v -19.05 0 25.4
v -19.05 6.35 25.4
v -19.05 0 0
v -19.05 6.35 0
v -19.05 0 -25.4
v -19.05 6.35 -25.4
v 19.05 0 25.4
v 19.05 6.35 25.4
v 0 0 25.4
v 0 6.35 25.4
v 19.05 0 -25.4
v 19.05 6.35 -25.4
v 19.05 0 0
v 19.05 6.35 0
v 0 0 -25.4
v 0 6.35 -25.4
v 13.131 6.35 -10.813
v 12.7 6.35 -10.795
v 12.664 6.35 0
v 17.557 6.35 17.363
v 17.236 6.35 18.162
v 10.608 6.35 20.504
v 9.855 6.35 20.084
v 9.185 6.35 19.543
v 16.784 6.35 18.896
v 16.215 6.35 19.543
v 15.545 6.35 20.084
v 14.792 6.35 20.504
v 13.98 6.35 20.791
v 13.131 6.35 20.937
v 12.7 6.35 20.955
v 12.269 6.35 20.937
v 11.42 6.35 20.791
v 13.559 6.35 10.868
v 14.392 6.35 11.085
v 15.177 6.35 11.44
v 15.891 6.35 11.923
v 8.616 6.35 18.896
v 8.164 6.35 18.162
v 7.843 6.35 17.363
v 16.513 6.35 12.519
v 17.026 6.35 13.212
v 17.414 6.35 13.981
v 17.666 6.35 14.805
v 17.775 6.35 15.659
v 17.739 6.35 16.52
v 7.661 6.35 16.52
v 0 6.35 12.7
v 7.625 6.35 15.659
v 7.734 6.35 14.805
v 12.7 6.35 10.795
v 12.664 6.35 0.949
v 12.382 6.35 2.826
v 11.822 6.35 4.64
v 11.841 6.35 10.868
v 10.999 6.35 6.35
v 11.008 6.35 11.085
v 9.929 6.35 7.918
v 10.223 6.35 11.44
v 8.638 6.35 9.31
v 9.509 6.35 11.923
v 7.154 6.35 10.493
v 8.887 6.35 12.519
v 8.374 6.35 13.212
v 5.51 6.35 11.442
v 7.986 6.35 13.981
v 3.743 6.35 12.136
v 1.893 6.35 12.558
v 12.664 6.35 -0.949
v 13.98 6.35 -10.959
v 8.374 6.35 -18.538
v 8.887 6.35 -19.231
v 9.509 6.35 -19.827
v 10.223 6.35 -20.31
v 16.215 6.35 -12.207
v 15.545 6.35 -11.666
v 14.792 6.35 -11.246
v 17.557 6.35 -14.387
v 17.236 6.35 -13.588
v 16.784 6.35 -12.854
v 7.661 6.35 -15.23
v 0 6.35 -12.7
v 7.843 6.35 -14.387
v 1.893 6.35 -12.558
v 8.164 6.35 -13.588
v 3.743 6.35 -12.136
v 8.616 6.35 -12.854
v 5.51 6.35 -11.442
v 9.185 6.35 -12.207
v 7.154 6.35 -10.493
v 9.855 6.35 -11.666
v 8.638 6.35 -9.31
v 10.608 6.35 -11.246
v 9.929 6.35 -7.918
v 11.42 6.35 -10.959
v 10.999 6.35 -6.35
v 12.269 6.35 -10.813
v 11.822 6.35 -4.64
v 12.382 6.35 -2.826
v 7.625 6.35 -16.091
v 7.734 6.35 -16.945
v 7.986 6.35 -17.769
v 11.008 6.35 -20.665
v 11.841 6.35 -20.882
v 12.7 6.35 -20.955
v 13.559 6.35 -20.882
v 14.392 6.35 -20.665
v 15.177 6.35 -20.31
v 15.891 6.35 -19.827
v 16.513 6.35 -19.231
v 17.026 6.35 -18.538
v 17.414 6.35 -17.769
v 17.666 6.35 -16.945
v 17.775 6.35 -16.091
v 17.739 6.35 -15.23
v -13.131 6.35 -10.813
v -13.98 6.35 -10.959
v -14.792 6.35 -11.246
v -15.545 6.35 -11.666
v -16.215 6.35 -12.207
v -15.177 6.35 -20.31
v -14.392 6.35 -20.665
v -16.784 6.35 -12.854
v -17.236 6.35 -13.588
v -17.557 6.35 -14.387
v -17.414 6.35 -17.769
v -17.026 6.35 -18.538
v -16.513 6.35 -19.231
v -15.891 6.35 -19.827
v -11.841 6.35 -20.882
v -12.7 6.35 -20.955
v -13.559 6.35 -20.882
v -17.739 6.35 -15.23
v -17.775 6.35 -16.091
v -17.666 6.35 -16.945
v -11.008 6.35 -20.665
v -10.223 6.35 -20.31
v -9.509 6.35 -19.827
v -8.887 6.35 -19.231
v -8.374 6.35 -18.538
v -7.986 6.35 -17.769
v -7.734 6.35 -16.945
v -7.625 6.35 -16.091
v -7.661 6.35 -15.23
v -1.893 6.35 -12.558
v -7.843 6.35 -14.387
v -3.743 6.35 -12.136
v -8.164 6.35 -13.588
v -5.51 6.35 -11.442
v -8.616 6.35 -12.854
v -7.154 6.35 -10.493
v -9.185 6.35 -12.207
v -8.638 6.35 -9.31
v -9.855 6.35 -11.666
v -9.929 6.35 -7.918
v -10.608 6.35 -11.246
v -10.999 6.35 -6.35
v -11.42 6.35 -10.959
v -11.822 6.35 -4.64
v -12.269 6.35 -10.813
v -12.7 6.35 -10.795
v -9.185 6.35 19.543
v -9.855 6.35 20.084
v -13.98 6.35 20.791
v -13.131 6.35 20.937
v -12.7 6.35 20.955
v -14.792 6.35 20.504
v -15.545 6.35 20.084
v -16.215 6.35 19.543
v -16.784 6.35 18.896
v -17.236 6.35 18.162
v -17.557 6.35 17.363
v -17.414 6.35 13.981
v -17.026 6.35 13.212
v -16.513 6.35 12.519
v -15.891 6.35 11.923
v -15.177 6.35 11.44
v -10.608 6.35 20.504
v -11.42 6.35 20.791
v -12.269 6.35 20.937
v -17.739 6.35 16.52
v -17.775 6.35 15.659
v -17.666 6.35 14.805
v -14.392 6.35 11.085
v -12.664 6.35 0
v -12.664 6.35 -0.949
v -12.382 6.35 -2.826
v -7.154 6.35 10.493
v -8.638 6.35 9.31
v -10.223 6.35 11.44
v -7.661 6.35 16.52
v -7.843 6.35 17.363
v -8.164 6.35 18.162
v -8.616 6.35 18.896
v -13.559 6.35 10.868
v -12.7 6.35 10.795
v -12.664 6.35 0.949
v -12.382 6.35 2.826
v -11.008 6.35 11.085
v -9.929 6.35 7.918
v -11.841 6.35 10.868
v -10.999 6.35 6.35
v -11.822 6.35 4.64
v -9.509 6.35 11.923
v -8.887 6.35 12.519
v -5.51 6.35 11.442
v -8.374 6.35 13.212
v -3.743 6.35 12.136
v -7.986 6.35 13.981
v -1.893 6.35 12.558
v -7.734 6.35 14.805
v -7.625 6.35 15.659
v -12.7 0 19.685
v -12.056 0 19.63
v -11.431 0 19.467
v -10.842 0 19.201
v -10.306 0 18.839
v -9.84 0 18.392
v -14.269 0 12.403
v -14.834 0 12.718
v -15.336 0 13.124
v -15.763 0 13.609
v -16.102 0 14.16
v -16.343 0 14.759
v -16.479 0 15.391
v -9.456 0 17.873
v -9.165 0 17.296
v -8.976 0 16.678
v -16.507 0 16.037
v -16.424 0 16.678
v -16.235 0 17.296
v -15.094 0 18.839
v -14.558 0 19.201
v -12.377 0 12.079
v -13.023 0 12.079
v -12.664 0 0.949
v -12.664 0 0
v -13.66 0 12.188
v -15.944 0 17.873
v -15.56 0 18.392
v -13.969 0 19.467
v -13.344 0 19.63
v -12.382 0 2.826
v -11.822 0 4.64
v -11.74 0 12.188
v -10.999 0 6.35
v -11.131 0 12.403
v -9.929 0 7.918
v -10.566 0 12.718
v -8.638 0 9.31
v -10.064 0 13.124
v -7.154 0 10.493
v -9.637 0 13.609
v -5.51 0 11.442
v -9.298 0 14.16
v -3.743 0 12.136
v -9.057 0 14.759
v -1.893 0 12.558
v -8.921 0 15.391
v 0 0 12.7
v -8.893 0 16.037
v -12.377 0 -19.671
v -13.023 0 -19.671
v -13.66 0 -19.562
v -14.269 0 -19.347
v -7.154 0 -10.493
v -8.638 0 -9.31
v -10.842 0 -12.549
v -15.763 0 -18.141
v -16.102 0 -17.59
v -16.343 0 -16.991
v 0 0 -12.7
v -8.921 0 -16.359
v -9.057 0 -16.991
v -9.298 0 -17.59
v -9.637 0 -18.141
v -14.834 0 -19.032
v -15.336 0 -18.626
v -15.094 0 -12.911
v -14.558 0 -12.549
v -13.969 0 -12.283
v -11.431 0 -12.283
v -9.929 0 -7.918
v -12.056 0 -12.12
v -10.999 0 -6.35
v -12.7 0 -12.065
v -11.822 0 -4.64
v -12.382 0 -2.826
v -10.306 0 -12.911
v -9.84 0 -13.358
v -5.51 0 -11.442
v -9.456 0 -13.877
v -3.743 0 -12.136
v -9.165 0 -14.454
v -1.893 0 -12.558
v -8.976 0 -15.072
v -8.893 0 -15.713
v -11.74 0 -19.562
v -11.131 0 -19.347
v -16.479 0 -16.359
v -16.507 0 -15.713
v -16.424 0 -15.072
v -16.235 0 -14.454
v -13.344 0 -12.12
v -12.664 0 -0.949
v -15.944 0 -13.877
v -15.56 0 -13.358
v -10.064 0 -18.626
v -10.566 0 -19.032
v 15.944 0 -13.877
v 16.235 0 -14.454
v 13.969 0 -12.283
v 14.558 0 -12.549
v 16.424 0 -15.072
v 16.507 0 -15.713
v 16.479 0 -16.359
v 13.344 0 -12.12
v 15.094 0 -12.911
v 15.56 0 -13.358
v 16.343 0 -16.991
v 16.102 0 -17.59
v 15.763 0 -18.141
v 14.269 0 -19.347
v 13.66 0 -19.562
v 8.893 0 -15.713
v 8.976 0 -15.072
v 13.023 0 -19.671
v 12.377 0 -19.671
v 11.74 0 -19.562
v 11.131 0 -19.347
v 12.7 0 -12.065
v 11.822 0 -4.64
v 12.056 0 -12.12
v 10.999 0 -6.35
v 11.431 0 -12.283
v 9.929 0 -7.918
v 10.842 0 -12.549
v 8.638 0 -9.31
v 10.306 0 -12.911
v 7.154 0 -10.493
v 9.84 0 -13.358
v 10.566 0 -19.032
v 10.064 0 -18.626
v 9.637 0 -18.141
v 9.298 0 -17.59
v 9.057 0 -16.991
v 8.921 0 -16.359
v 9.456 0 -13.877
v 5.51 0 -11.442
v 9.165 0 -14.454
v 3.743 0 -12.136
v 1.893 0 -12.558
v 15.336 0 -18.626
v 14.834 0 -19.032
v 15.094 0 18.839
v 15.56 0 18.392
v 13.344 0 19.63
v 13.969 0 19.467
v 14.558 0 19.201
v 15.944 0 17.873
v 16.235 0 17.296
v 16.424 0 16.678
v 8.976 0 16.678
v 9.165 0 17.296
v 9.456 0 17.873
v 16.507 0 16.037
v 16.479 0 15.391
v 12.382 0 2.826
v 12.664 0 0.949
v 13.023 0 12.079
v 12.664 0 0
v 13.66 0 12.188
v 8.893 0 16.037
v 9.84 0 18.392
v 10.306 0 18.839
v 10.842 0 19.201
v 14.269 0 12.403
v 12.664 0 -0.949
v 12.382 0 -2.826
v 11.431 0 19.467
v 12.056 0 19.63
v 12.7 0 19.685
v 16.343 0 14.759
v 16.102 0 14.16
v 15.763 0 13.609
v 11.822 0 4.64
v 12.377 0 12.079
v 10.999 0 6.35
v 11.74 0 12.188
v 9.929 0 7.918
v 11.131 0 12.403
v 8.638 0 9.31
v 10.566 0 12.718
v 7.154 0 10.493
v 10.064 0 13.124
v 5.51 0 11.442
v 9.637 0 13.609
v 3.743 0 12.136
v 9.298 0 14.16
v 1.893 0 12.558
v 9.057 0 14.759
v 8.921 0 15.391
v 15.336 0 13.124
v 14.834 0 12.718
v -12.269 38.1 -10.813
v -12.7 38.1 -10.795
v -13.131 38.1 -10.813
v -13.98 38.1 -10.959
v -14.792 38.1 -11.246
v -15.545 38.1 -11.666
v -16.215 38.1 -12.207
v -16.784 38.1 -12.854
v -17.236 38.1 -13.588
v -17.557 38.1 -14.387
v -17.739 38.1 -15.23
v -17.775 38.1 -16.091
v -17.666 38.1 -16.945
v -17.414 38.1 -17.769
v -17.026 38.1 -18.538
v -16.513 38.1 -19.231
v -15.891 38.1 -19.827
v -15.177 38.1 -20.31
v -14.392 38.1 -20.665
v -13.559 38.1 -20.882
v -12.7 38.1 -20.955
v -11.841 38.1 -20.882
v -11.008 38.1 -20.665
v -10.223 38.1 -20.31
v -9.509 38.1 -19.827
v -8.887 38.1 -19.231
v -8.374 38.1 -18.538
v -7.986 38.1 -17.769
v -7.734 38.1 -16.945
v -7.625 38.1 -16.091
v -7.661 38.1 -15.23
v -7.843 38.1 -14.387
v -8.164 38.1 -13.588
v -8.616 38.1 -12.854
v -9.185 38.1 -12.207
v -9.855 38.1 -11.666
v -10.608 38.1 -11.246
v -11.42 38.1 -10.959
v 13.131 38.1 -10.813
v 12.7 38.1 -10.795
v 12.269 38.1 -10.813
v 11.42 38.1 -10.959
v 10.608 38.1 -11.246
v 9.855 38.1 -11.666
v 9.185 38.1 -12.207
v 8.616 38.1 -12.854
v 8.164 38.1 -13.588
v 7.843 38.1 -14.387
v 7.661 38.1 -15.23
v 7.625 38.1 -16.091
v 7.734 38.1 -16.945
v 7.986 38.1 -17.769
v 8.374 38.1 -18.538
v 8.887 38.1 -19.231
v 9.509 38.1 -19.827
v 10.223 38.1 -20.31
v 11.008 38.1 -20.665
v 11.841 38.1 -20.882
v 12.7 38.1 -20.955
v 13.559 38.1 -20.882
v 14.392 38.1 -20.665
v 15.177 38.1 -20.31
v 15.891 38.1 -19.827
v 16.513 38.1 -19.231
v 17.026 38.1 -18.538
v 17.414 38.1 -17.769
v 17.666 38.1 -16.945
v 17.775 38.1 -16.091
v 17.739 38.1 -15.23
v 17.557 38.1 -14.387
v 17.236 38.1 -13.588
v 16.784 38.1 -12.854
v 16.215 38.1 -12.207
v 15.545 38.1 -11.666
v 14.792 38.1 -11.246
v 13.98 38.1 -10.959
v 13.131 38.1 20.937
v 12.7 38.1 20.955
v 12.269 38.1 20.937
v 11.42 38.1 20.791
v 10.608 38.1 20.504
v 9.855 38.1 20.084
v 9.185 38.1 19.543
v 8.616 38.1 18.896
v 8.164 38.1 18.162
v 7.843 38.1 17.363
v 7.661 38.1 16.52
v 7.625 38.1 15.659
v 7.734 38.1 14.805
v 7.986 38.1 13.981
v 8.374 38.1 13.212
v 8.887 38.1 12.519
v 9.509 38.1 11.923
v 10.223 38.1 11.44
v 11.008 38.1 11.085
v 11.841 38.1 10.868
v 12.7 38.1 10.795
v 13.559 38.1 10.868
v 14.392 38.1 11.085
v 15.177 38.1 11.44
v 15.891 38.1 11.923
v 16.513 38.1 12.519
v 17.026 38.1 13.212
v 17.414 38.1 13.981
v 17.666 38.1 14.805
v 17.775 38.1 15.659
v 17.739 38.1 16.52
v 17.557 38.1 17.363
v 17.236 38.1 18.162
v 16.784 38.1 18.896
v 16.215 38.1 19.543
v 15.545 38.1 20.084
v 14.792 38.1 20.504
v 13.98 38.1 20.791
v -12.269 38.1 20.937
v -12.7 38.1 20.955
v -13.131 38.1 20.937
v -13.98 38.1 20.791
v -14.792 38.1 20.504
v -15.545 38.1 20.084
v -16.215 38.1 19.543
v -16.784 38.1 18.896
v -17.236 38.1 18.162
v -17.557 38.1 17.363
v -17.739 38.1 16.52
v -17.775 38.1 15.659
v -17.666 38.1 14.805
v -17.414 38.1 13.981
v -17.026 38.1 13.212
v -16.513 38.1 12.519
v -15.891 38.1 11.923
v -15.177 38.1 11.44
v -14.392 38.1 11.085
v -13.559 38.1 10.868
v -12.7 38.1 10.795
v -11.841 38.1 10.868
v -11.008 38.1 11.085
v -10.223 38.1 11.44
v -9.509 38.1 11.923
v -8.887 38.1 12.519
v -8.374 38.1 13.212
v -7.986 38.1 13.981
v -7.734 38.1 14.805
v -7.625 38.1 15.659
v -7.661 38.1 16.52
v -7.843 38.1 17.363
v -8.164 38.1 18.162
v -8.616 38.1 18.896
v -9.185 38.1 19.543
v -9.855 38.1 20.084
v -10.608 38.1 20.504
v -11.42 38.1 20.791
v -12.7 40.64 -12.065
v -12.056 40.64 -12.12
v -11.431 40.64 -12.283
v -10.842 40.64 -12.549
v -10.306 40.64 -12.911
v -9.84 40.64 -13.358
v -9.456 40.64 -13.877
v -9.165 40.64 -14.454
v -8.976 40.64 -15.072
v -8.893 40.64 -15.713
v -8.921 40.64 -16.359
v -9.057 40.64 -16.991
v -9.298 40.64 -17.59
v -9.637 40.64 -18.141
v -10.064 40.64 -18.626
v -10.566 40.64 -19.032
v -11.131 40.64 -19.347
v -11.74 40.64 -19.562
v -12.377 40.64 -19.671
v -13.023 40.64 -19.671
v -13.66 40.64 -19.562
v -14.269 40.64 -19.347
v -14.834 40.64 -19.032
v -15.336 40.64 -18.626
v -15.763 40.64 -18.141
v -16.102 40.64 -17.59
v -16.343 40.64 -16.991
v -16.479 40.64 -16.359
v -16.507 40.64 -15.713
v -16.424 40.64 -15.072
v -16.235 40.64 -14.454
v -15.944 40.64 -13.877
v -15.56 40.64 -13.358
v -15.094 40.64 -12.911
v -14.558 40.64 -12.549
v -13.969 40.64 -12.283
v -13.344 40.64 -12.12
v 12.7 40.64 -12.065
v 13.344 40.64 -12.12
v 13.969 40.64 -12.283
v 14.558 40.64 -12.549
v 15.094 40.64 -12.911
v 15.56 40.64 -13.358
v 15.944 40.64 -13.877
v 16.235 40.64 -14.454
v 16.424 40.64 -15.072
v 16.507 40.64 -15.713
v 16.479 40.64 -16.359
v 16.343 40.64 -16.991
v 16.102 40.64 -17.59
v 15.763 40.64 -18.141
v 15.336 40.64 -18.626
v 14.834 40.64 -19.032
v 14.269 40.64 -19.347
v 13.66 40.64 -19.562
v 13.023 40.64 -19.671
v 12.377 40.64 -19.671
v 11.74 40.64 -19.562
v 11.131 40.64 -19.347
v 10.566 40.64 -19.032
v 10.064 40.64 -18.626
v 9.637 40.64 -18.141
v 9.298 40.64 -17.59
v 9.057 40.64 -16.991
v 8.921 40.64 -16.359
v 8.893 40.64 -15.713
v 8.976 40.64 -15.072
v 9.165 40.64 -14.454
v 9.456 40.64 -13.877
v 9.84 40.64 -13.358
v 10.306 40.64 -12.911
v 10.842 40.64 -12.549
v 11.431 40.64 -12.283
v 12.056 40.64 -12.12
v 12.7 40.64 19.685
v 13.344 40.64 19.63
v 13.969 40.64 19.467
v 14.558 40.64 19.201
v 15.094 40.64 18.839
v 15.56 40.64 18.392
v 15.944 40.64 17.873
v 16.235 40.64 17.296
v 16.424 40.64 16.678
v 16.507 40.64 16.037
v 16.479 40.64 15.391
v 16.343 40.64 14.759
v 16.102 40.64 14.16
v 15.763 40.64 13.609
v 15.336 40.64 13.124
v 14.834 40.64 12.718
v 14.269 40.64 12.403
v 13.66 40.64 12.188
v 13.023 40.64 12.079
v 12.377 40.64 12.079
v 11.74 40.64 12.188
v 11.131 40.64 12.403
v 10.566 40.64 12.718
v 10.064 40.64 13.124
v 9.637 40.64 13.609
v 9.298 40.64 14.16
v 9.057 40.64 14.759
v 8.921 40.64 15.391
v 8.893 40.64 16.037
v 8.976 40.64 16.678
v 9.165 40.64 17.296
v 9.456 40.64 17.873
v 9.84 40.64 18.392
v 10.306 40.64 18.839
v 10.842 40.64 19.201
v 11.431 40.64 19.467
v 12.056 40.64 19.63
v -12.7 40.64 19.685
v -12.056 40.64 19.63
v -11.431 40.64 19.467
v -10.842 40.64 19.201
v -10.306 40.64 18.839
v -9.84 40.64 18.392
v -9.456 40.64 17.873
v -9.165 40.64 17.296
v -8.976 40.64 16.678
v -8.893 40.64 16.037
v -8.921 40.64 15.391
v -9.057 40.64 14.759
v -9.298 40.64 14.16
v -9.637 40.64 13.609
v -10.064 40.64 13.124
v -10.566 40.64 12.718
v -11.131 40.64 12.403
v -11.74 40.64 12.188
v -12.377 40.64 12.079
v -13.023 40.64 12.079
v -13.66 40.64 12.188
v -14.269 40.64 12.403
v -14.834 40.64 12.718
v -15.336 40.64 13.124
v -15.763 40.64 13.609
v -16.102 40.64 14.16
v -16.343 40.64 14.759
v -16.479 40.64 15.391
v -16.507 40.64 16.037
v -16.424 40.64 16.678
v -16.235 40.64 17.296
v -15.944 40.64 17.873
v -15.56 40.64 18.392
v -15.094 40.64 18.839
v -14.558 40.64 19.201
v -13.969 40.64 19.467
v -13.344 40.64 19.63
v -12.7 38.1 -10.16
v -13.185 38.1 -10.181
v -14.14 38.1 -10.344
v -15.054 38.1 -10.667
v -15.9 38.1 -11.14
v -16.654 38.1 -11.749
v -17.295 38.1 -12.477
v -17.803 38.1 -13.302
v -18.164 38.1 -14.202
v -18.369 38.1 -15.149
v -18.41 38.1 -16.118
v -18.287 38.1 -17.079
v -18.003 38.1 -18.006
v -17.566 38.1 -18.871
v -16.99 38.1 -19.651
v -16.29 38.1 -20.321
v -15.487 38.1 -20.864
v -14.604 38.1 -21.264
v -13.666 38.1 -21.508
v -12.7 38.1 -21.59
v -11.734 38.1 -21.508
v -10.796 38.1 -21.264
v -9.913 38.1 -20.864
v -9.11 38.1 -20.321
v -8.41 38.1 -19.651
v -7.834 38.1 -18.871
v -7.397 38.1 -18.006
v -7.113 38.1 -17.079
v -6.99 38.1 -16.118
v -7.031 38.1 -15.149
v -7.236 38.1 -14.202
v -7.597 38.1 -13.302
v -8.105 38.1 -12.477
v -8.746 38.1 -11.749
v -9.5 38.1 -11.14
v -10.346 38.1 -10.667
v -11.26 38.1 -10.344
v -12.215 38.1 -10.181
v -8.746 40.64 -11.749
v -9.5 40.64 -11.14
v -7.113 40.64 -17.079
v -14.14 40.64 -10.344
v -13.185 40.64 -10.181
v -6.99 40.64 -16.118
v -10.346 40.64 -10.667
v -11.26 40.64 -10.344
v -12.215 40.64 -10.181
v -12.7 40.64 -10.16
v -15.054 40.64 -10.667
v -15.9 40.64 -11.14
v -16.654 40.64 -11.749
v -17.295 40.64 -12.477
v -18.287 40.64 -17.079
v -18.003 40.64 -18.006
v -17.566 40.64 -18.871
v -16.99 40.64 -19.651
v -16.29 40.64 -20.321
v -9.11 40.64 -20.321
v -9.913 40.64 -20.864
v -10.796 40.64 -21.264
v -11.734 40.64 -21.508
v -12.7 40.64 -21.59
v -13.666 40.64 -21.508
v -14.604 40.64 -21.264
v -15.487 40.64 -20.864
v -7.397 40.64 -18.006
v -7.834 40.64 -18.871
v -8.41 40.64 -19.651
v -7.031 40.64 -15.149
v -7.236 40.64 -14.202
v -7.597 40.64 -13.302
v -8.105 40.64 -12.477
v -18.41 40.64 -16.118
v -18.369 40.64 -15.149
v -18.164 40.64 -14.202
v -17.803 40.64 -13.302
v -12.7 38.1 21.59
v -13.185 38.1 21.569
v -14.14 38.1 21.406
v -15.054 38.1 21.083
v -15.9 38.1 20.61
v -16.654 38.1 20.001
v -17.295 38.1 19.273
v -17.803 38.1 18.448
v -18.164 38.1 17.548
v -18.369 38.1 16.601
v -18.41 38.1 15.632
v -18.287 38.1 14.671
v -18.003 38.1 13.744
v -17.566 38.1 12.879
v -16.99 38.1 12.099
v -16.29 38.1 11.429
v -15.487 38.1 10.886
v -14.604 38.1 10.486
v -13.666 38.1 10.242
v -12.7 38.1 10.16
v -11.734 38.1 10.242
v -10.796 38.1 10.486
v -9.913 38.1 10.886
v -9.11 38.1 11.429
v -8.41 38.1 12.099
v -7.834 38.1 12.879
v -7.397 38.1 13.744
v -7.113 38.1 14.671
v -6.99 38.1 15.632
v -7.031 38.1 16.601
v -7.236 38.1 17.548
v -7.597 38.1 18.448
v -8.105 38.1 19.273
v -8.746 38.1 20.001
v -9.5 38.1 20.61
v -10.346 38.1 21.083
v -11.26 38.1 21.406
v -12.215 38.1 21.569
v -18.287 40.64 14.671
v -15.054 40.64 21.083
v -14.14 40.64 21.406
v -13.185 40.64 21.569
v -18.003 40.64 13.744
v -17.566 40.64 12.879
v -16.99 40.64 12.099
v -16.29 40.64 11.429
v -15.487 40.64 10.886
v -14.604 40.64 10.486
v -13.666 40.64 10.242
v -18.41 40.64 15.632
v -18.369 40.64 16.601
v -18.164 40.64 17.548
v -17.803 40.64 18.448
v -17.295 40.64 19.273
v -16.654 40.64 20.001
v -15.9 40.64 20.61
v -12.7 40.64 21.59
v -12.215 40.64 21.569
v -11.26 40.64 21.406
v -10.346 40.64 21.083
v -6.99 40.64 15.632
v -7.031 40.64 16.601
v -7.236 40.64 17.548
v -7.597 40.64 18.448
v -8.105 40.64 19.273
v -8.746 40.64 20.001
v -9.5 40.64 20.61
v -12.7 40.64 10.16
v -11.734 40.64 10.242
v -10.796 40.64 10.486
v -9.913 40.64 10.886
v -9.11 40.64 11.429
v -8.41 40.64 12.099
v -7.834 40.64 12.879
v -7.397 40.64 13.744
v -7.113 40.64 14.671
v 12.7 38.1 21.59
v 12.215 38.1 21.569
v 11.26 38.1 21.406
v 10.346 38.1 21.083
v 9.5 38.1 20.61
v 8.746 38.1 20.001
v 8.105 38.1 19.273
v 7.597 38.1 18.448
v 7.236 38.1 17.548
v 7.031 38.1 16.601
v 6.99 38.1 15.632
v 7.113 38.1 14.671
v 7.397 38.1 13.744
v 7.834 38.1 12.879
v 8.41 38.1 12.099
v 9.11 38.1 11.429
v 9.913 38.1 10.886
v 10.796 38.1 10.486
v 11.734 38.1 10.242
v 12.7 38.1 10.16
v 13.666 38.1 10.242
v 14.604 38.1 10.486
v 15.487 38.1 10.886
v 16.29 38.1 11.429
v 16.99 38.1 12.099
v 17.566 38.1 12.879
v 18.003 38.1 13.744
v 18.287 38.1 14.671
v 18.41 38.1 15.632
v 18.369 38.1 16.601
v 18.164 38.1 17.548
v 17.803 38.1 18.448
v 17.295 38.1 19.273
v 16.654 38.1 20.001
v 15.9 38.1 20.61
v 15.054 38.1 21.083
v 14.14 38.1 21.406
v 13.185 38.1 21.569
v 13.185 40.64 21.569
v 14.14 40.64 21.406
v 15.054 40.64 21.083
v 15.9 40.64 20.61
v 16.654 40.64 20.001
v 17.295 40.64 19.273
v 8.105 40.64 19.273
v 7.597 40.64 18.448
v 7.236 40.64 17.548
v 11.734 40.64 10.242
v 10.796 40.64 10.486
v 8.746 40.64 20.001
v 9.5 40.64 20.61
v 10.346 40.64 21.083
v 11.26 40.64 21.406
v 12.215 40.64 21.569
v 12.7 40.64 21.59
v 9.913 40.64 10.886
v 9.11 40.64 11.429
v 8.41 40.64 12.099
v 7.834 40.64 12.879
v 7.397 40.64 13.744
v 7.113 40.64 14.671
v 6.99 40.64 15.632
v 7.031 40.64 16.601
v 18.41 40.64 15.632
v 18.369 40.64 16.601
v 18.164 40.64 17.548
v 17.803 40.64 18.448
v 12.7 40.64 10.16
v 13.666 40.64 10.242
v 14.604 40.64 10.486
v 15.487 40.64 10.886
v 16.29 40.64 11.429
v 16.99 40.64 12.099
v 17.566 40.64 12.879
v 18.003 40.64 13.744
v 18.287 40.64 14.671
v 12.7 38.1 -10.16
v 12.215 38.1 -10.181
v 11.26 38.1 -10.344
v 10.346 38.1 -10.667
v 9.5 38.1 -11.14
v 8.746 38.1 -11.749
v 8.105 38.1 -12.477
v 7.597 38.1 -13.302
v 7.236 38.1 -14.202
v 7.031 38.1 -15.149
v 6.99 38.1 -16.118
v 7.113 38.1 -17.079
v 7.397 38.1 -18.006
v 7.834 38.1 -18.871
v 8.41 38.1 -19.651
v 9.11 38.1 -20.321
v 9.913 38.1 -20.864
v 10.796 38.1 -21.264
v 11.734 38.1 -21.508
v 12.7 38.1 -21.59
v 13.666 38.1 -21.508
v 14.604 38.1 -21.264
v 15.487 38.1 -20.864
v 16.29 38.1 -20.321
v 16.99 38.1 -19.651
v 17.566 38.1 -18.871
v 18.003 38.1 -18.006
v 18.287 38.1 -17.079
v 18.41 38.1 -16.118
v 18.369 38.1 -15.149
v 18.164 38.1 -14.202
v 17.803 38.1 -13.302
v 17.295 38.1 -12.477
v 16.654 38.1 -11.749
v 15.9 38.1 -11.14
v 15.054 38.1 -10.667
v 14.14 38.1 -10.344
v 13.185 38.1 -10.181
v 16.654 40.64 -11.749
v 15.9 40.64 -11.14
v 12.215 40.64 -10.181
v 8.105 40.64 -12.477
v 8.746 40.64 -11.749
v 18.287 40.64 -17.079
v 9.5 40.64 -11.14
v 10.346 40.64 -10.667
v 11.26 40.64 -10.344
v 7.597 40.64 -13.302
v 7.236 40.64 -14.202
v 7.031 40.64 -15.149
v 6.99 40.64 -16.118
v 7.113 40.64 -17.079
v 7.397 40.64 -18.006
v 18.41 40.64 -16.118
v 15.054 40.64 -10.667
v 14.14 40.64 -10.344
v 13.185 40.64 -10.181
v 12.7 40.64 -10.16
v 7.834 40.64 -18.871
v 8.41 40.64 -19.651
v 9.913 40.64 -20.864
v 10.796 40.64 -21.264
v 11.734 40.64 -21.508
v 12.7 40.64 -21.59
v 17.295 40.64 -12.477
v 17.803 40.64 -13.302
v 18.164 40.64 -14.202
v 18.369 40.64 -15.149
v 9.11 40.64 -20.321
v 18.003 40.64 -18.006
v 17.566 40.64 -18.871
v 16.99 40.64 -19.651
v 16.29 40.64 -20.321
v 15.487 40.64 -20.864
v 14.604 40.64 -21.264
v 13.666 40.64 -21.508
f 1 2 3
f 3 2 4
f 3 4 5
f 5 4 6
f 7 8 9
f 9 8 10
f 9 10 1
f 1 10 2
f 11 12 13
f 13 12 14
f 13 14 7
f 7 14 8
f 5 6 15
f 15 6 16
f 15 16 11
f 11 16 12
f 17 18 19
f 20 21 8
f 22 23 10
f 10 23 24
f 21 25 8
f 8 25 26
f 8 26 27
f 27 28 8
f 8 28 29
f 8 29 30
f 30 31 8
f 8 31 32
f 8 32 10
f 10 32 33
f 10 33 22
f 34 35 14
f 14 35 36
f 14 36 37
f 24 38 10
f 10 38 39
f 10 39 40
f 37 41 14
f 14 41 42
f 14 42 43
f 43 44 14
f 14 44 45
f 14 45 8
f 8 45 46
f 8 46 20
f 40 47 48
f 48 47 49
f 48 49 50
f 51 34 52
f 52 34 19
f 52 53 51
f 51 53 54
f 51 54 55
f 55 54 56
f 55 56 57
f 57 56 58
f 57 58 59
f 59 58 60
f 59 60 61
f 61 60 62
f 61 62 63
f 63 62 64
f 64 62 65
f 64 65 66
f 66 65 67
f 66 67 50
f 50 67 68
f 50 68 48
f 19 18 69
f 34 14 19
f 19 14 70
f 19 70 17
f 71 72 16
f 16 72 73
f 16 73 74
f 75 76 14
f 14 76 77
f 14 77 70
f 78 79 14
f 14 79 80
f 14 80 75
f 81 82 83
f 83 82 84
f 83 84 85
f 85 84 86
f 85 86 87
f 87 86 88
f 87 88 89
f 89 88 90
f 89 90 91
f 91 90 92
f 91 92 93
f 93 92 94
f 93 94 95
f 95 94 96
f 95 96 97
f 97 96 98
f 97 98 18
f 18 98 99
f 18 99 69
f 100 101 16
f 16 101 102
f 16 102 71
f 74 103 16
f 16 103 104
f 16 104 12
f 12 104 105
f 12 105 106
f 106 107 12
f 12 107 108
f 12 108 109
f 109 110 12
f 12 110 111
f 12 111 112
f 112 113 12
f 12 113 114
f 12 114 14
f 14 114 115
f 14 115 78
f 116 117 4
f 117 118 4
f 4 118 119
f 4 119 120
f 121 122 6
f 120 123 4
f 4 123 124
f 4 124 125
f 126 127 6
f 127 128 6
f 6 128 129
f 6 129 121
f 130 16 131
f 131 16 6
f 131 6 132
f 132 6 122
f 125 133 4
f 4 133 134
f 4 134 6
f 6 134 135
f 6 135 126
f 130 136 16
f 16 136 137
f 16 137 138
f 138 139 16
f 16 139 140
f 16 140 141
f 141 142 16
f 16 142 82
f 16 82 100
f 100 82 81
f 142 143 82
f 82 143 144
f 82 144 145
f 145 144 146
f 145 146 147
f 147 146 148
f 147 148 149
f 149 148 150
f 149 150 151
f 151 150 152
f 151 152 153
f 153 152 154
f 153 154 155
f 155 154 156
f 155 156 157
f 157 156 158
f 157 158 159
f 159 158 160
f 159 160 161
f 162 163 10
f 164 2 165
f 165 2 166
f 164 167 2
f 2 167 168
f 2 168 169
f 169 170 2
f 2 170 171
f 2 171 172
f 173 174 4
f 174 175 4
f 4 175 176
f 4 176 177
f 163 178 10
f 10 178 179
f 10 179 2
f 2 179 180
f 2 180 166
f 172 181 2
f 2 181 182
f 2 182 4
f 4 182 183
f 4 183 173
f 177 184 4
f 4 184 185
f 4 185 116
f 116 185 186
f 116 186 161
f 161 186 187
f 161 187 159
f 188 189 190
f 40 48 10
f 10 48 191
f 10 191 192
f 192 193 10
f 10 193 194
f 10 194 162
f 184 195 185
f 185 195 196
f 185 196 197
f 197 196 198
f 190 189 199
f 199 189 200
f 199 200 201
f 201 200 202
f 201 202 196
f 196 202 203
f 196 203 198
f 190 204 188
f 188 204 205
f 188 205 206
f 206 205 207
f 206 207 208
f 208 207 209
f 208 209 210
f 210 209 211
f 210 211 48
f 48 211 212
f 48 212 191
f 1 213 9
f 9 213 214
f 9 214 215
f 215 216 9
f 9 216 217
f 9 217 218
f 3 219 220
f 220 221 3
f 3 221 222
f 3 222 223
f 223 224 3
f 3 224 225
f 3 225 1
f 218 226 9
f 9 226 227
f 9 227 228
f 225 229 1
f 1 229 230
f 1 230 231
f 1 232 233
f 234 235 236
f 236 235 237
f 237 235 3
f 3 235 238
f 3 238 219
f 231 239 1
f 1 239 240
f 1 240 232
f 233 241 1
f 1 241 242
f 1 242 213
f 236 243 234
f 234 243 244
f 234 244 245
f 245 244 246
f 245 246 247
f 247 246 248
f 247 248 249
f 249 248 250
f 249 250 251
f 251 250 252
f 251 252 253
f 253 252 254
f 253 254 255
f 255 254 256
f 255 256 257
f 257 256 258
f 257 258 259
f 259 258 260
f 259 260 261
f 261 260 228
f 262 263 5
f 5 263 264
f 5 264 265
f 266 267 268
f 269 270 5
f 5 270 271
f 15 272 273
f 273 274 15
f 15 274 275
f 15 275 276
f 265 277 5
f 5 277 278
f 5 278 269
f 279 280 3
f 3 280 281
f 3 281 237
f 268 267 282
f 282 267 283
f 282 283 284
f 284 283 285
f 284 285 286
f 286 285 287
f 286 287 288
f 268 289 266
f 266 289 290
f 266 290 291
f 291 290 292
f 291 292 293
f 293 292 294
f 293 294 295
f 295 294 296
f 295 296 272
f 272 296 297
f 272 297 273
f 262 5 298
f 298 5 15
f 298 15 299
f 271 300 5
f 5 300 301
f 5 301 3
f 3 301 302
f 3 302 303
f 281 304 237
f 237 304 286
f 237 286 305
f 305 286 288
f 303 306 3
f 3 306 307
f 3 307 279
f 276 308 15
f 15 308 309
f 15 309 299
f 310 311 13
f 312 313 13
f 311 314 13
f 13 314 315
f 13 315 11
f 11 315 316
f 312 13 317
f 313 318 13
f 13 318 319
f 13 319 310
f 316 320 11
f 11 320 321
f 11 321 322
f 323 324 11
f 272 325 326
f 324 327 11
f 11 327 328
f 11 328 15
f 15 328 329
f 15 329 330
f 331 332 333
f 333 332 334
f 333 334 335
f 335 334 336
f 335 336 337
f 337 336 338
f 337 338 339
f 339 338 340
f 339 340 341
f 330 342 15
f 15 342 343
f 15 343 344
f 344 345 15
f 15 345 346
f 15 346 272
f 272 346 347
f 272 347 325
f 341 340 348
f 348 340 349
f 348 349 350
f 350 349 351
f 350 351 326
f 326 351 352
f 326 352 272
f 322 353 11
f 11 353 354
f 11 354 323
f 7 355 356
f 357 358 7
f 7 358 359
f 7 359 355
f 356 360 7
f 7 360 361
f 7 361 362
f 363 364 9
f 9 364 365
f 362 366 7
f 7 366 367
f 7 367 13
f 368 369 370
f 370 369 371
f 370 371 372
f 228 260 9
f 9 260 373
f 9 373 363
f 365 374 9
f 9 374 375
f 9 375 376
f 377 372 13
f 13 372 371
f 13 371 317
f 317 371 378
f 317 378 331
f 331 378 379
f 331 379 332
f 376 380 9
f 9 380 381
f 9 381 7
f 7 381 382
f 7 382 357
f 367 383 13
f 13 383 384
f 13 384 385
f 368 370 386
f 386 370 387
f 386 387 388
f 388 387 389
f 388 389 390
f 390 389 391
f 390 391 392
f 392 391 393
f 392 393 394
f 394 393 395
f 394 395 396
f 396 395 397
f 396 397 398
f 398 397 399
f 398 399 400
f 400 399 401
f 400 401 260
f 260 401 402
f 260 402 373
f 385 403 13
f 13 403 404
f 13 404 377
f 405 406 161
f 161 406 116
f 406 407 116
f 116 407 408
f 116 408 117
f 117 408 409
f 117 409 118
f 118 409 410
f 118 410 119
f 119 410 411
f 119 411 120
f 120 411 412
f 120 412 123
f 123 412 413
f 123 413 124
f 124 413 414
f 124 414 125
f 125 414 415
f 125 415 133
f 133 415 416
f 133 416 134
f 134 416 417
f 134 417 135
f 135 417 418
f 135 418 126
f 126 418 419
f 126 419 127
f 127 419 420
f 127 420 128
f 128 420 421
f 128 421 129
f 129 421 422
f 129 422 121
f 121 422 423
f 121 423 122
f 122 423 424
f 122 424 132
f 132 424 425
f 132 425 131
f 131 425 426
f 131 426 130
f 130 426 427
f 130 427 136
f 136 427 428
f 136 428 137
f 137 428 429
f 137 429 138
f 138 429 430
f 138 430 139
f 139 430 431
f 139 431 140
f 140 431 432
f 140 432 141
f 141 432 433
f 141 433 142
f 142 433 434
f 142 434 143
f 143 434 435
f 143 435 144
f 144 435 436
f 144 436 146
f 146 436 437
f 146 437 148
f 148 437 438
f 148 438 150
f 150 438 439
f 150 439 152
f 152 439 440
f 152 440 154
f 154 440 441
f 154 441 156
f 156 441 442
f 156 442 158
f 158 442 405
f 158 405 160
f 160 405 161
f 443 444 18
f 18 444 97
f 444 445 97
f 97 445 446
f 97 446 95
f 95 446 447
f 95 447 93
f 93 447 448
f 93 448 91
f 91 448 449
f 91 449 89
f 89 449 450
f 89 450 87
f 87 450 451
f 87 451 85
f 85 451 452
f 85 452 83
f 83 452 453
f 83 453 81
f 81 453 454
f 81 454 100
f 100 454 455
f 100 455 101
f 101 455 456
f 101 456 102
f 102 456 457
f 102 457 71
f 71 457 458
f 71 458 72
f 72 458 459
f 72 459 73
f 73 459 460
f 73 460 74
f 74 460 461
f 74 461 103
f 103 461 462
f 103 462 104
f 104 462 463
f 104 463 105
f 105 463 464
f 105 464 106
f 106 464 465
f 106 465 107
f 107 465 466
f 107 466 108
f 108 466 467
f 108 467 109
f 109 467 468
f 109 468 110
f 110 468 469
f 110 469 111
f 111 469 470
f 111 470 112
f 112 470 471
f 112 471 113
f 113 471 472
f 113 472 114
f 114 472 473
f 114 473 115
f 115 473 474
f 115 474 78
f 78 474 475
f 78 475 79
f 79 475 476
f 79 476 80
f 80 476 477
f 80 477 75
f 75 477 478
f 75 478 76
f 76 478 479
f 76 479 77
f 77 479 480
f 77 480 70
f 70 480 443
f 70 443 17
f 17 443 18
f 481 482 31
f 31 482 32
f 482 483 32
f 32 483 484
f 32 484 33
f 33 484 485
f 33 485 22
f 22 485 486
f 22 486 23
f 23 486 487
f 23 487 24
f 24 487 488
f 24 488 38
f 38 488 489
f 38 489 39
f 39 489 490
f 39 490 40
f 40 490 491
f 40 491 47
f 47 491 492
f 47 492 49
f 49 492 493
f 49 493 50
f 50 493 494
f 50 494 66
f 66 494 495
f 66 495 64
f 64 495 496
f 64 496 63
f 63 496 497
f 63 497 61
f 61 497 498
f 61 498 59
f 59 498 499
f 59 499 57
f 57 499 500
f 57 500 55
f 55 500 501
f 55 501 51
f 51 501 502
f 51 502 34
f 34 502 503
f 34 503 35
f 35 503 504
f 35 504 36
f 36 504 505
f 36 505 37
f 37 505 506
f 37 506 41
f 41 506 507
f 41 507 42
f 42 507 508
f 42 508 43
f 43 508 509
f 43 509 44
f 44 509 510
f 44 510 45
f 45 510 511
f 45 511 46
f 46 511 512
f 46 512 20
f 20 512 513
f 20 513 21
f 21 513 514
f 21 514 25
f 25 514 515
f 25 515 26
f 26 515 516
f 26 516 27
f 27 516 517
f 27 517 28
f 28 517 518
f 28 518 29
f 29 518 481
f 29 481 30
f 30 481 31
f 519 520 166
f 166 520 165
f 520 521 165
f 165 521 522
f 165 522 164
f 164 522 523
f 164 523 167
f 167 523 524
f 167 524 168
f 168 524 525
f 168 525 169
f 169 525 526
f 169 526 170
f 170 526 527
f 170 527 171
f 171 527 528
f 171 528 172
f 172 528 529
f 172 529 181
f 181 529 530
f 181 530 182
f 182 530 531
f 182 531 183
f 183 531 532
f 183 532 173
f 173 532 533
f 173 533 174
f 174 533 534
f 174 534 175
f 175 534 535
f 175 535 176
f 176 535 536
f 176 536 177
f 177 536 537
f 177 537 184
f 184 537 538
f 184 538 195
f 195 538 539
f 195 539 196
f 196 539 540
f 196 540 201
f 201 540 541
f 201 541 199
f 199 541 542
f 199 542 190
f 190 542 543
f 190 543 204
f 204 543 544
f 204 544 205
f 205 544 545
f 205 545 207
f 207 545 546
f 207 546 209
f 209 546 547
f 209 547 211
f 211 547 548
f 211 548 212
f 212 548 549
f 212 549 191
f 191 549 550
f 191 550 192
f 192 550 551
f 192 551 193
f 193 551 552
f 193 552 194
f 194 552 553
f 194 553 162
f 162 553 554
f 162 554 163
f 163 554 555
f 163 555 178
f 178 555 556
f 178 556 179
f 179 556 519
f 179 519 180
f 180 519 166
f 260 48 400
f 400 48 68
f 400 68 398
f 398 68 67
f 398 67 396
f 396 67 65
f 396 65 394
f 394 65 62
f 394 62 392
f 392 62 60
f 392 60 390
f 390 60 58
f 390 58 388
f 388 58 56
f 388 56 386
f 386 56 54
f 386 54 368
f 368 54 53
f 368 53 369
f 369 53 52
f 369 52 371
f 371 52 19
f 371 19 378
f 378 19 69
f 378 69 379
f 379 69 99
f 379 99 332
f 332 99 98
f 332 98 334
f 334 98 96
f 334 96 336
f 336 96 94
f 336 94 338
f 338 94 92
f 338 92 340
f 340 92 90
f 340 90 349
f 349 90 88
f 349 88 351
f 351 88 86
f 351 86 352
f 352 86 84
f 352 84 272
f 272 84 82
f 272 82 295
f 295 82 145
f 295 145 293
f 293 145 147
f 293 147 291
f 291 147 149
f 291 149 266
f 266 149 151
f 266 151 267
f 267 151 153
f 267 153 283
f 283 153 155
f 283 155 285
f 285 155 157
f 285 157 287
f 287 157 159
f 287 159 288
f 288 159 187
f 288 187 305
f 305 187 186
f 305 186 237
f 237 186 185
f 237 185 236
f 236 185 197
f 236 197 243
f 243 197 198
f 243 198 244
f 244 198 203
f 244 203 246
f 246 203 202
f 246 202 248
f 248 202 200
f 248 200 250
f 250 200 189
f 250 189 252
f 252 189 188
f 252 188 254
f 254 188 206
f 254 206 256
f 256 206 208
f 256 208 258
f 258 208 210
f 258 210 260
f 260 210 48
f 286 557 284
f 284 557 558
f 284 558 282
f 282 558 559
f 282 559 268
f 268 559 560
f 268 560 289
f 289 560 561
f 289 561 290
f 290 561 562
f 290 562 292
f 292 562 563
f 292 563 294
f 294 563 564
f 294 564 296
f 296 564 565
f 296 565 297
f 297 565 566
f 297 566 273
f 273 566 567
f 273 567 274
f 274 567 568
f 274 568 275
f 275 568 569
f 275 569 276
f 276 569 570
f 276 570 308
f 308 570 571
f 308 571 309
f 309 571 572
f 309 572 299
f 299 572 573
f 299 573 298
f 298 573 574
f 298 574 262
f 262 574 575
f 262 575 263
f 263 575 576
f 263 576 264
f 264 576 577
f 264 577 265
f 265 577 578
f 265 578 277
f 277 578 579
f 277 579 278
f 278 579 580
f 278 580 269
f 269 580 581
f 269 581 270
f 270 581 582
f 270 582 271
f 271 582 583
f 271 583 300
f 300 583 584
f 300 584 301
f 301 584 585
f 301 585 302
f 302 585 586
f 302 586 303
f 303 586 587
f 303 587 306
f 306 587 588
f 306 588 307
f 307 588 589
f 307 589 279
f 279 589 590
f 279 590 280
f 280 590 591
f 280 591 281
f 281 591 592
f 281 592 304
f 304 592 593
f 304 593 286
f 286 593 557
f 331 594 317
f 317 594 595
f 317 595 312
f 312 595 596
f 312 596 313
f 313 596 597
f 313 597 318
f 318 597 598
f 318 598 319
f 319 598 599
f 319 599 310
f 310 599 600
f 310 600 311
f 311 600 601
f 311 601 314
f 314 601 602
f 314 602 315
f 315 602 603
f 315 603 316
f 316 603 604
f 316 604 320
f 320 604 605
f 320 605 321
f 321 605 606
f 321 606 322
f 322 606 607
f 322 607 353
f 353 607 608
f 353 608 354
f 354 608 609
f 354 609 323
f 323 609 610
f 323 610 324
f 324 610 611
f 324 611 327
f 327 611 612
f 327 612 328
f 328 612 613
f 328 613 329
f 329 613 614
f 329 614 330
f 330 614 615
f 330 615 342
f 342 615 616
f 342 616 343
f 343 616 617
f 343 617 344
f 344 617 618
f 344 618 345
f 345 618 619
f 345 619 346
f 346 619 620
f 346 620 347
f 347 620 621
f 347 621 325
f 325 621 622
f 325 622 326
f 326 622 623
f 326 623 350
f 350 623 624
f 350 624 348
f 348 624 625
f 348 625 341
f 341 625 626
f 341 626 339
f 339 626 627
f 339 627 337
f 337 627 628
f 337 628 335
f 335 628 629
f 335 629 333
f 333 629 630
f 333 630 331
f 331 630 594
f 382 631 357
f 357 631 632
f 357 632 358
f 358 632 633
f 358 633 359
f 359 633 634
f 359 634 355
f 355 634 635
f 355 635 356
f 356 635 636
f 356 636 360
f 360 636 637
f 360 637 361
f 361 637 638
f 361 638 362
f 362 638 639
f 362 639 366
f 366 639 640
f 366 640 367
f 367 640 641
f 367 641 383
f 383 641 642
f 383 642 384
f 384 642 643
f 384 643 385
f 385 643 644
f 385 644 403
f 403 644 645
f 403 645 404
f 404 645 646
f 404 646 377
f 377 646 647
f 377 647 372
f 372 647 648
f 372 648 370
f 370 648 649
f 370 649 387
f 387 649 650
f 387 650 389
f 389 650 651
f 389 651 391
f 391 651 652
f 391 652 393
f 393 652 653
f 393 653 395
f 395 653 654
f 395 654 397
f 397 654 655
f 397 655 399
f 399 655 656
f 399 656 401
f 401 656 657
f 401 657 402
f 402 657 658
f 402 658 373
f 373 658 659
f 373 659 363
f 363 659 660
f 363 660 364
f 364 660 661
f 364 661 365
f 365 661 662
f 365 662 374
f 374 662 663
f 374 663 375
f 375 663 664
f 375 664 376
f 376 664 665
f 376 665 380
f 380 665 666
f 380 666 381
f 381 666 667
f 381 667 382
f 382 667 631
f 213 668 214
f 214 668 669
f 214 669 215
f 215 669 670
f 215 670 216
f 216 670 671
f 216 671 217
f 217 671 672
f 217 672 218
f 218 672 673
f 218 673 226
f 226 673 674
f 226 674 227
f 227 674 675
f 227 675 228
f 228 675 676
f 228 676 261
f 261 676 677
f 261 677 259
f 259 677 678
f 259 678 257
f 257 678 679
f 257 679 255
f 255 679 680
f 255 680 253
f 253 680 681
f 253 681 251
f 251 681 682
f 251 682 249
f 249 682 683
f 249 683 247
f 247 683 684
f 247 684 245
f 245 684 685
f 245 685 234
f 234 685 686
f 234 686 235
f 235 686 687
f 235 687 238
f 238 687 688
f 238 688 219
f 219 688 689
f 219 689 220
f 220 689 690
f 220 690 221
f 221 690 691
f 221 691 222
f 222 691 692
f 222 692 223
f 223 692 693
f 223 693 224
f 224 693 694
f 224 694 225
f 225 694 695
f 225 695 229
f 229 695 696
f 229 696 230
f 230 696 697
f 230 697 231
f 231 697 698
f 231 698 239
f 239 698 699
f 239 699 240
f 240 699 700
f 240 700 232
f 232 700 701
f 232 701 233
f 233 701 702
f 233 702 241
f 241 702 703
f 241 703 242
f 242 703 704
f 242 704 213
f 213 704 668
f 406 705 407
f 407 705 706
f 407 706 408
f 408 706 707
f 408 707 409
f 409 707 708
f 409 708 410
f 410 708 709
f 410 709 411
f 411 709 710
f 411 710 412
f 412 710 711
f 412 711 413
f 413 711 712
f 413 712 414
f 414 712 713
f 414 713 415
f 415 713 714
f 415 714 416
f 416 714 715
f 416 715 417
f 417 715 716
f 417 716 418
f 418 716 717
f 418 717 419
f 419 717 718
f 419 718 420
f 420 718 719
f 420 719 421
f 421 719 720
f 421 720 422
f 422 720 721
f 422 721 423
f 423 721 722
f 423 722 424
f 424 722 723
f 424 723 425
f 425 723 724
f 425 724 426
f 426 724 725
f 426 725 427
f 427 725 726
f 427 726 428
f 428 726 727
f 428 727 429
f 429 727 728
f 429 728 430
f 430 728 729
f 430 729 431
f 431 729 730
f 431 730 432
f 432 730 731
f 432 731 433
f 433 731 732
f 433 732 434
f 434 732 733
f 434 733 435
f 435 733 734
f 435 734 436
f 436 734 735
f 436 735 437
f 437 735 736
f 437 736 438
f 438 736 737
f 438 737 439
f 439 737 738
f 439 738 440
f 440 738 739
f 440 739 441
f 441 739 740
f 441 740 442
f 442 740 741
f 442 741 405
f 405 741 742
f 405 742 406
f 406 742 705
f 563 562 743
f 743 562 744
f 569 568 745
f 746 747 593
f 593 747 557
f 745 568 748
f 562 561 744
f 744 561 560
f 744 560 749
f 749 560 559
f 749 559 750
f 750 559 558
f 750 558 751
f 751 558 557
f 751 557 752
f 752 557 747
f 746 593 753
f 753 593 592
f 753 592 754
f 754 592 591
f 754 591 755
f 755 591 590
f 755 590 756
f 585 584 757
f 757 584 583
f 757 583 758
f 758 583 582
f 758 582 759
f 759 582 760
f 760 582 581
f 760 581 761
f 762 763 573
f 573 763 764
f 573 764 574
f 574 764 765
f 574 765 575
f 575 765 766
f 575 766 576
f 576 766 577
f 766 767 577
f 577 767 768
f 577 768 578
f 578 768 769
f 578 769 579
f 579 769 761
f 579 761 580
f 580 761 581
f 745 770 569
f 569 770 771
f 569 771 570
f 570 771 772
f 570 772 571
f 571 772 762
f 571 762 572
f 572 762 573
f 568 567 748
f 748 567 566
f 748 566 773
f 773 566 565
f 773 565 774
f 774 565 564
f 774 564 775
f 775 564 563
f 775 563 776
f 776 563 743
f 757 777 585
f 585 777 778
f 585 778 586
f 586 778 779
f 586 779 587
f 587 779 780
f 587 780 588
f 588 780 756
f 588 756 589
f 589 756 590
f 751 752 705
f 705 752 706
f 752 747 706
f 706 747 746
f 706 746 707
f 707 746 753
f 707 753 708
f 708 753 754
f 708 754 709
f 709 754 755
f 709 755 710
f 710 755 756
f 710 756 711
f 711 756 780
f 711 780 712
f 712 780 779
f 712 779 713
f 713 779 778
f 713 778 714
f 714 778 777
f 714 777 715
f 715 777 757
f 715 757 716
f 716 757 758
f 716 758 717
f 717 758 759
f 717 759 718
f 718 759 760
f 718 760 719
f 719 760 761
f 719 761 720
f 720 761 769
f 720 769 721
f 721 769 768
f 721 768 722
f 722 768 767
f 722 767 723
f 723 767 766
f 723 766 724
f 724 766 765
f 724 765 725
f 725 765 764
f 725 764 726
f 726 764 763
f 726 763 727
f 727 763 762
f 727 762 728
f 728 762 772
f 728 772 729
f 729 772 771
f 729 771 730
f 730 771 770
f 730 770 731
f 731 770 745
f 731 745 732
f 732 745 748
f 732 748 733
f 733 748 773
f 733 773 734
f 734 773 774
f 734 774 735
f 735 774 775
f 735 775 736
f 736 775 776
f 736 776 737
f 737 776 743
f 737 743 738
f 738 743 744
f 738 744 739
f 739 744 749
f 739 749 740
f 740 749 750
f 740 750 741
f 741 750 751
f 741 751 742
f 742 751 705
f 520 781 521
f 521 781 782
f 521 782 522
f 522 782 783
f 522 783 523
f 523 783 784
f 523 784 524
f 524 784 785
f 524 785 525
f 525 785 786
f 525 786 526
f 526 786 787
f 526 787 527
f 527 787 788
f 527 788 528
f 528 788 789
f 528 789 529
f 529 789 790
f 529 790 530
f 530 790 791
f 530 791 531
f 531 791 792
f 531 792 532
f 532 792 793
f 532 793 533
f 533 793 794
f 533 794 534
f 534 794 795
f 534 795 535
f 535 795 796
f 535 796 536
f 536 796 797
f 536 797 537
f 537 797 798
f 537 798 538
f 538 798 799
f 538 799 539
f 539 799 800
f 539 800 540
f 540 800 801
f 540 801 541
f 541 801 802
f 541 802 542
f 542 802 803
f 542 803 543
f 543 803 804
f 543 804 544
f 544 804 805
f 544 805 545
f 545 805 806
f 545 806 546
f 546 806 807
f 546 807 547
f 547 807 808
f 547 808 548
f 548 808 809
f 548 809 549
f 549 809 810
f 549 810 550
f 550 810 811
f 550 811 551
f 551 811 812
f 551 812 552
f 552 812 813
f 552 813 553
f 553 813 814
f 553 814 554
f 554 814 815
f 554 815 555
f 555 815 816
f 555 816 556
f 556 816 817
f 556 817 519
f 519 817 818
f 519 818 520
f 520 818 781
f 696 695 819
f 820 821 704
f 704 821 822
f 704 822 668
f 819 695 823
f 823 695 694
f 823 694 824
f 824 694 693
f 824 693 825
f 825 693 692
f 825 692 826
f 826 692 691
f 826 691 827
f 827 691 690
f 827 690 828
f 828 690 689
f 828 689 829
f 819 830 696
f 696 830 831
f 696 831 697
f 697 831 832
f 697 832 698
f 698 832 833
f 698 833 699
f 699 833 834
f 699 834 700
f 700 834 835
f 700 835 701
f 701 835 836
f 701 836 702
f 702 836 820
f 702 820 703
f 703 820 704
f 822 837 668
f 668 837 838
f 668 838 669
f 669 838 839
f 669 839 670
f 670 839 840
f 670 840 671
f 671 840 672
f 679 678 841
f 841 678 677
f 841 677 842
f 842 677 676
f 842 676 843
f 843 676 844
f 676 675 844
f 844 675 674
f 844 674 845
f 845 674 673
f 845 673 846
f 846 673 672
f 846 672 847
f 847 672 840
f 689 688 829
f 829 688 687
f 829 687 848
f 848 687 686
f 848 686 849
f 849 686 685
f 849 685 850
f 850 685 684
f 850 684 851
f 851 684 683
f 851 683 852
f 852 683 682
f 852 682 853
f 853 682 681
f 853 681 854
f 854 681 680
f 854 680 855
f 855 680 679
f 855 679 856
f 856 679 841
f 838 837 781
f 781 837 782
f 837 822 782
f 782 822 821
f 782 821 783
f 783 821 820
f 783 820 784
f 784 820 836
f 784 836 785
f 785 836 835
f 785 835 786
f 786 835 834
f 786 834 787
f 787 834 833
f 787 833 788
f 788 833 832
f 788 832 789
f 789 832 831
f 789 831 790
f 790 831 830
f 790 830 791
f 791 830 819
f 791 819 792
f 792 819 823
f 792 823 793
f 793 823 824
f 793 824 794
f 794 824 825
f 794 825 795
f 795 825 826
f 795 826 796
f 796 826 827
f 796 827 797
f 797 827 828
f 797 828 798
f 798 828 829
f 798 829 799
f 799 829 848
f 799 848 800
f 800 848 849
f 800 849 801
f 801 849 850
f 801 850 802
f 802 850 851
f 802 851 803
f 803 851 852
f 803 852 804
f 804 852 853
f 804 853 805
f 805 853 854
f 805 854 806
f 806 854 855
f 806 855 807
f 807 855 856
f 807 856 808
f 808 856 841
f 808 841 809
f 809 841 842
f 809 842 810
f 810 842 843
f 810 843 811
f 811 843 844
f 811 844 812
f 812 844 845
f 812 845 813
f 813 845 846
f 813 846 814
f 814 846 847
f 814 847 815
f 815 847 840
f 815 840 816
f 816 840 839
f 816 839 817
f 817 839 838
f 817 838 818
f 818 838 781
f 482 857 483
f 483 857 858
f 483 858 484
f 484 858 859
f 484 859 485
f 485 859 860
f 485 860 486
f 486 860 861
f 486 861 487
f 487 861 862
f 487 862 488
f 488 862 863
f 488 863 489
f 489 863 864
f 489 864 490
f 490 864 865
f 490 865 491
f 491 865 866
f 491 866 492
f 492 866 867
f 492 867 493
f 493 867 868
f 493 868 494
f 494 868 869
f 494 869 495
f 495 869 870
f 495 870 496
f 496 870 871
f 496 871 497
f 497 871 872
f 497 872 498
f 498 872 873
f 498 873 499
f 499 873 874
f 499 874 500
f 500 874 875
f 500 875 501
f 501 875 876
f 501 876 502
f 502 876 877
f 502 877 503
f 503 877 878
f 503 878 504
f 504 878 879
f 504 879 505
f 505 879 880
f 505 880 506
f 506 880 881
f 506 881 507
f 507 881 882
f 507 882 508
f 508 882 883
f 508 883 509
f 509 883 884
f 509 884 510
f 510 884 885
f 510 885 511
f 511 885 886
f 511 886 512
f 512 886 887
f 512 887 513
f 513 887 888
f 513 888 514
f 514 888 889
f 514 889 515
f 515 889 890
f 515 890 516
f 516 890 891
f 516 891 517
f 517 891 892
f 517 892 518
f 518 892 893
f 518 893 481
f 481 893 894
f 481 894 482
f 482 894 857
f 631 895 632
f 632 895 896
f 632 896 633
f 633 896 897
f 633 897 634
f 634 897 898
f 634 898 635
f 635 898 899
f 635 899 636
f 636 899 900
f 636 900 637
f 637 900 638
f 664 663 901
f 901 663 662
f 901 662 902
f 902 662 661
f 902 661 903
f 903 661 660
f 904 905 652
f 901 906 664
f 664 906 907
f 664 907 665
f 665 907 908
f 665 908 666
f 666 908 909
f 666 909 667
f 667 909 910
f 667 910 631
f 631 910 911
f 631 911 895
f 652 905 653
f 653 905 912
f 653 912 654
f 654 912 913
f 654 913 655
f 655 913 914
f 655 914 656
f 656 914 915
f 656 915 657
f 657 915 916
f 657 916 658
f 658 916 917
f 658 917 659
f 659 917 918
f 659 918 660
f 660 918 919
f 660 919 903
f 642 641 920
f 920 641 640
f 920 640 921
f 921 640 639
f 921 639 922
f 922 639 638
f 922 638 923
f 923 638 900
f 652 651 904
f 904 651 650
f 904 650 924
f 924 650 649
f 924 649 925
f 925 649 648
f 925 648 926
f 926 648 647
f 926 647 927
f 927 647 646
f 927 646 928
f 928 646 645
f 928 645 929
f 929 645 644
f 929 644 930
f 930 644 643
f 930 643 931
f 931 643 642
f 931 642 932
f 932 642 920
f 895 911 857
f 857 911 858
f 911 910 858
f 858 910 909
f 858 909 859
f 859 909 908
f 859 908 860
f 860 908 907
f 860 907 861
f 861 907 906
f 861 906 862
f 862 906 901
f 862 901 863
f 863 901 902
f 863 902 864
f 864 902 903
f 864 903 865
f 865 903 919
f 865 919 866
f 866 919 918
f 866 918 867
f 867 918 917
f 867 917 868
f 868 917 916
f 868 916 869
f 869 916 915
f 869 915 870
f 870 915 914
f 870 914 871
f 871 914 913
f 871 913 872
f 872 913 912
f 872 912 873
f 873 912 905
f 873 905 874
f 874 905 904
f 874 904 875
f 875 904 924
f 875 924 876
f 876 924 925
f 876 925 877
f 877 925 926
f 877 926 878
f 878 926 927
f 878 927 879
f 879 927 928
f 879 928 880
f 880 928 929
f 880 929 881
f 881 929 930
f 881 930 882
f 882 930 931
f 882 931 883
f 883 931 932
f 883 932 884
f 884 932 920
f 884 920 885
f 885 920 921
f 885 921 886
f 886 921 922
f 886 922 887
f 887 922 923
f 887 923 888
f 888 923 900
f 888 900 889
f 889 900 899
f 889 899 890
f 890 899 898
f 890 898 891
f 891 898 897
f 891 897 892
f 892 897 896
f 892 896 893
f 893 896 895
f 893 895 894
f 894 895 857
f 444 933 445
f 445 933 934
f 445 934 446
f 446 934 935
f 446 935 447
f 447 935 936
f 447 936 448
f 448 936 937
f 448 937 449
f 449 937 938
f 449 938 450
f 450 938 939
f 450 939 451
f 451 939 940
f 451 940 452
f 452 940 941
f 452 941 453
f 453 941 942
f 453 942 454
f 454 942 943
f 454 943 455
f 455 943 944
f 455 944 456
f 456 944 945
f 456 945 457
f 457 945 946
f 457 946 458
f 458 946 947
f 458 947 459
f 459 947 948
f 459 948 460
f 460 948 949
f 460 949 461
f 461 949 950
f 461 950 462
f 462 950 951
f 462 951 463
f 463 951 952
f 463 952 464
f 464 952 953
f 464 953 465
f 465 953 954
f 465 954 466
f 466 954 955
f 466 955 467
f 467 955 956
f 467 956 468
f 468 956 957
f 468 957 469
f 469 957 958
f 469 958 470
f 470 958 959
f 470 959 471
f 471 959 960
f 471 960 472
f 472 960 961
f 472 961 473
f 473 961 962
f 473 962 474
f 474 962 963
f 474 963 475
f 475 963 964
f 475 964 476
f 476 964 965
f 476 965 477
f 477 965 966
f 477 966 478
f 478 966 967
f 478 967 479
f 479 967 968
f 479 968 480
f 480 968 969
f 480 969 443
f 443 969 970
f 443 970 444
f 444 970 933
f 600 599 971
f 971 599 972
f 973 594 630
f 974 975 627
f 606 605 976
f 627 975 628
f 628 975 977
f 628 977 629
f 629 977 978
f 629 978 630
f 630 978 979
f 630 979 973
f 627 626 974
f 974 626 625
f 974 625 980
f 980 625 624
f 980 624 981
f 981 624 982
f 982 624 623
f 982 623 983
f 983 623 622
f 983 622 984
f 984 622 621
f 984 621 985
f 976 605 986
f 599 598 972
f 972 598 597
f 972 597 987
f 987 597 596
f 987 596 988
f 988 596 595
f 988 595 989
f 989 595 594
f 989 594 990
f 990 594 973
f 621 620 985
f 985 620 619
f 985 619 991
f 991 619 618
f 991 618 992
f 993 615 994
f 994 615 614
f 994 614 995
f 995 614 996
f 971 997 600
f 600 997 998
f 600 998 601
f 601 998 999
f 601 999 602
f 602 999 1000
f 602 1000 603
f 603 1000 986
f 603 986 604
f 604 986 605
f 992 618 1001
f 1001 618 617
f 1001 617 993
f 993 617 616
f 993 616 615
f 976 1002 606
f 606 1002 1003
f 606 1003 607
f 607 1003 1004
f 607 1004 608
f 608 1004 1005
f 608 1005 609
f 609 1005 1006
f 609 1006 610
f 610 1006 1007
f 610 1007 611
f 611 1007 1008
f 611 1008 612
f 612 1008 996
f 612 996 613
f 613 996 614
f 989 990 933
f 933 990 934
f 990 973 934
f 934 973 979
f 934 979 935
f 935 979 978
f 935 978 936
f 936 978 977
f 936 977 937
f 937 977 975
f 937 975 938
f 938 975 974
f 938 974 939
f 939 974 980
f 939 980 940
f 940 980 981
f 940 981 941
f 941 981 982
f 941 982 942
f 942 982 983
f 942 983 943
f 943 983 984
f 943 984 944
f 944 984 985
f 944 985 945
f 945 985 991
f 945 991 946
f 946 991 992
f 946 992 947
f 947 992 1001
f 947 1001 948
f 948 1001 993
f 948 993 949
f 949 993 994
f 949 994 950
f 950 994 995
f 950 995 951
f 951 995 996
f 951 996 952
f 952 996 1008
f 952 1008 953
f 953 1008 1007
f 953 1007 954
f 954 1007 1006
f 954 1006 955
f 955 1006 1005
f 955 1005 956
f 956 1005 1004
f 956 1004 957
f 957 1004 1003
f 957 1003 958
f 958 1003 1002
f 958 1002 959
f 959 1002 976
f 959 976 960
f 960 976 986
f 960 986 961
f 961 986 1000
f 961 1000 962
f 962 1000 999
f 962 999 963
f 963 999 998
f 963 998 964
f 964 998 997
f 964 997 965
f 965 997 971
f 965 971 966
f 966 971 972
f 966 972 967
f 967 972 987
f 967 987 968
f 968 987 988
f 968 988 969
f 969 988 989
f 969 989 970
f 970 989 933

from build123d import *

# Parameters (mm, degrees)
SKETCH1_W           = 38.1
SKETCH1_H           = 50.8
BOSS_EXTRUDE1_DEPTH = 6.35
SKETCH2_R           = 5.08
BOSS_EXTRUDE2_DEPTH = 31.75
SKETCH5_R           = 12.7
CUT_EXTRUDE1_DEPTH  = 45.901280605
SKETCH6_R           = 3.81
CUT_EXTRUDE2_DEPTH  = 50.595085442
BOSS_EXTRUDE3_START = 2.54
SKETCH7_R           = 5.715
SKETCH7_R_2         = 3.81
BOSS_EXTRUDE3_DEPTH = 2.54


with BuildPart() as part:
    # Sketch1 → Boss-Extrude1 (new body)
    with BuildSketch(Plane(origin=(0, 0, 0), x_dir=(1, 0, 0), z_dir=(0, 1, 0))):
        Rectangle(SKETCH1_W, SKETCH1_H)
    extrude(amount=BOSS_EXTRUDE1_DEPTH)

    # Sketch2 → Boss-Extrude2 (add)
    with BuildSketch(Plane(origin=(0, 6.35, 0), x_dir=(1, 0, 0), z_dir=(0, 1, 0))):
        with Locations(Location((-12.7, 15.875, 0), (0, 0, 270))):
            Circle(SKETCH2_R)
        with Locations(Location((12.7, 15.875, 0), (0, 0, 270))):
            Circle(SKETCH2_R)
        with Locations(Location((12.7, -15.875, 0), (0, 0, 270))):
            Circle(SKETCH2_R)
        with Locations(Location((-12.7, -15.875, 0), (0, 0, 270))):
            Circle(SKETCH2_R)
    extrude(amount=BOSS_EXTRUDE2_DEPTH)

    # Sketch5 → Cut-Extrude1 (cut, through all)
    with BuildSketch(Plane(origin=(0, 6.35, 0), x_dir=(1, 0, 0), z_dir=(0, 1, 0))):
        with Locations(Location((0, 0, 0), (0, 0, 270))):
            Circle(SKETCH5_R)
    extrude(amount=-CUT_EXTRUDE1_DEPTH, mode=Mode.SUBTRACT)

    # Sketch6 → Cut-Extrude2 (cut, through all)
    with BuildSketch(Plane(origin=(0, 38.1, 0), x_dir=(1, 0, 0), z_dir=(0, 1, 0))):
        with Locations(Location((-12.7, 15.875, 0), (0, 0, 270))):
            Circle(SKETCH6_R)
        with Locations(Location((12.7, 15.875, 0), (0, 0, 270))):
            Circle(SKETCH6_R)
        with Locations(Location((12.7, -15.875, 0), (0, 0, 270))):
            Circle(SKETCH6_R)
        with Locations(Location((-12.7, -15.875, 0), (0, 0, 270))):
            Circle(SKETCH6_R)
    extrude(amount=-CUT_EXTRUDE2_DEPTH, mode=Mode.SUBTRACT)

    # Sketch7 → Boss-Extrude3 (add)
    # profile 1 of 4: a face of its own
    with BuildSketch(Plane(origin=(0, 38.1, 0), x_dir=(1, 0, 0), z_dir=(0, 1, 0)).offset(BOSS_EXTRUDE3_START)):
        with Locations(Location((-12.7, 15.875, 0), (0, 0, 270))):
            Circle(SKETCH7_R)
        with Locations(Location((-12.7, 15.875, 0), (0, 0, 270))):
            Circle(SKETCH7_R_2, mode=Mode.SUBTRACT)
    # profile 2 of 4: a face of its own
    with BuildSketch(Plane(origin=(0, 38.1, 0), x_dir=(1, 0, 0), z_dir=(0, 1, 0)).offset(BOSS_EXTRUDE3_START)):
        with Locations(Location((-12.7, -15.875, 0), (0, 0, 270))):
            Circle(SKETCH7_R)
        with Locations(Location((-12.7, -15.875, 0), (0, 0, 270))):
            Circle(SKETCH7_R_2, mode=Mode.SUBTRACT)
    # profile 3 of 4: a face of its own
    with BuildSketch(Plane(origin=(0, 38.1, 0), x_dir=(1, 0, 0), z_dir=(0, 1, 0)).offset(BOSS_EXTRUDE3_START)):
        with Locations(Location((12.7, -15.875, 0), (0, 0, 270))):
            Circle(SKETCH7_R)
        with Locations(Location((12.7, -15.875, 0), (0, 0, 270))):
            Circle(SKETCH7_R_2, mode=Mode.SUBTRACT)
    # profile 4 of 4: a face of its own
    with BuildSketch(Plane(origin=(0, 38.1, 0), x_dir=(1, 0, 0), z_dir=(0, 1, 0)).offset(BOSS_EXTRUDE3_START)):
        with Locations(Location((12.7, 15.875, 0), (0, 0, 270))):
            Circle(SKETCH7_R)
        with Locations(Location((12.7, 15.875, 0), (0, 0, 270))):
            Circle(SKETCH7_R_2, mode=Mode.SUBTRACT)
    extrude(amount=-BOSS_EXTRUDE3_DEPTH)


solid = part.part
